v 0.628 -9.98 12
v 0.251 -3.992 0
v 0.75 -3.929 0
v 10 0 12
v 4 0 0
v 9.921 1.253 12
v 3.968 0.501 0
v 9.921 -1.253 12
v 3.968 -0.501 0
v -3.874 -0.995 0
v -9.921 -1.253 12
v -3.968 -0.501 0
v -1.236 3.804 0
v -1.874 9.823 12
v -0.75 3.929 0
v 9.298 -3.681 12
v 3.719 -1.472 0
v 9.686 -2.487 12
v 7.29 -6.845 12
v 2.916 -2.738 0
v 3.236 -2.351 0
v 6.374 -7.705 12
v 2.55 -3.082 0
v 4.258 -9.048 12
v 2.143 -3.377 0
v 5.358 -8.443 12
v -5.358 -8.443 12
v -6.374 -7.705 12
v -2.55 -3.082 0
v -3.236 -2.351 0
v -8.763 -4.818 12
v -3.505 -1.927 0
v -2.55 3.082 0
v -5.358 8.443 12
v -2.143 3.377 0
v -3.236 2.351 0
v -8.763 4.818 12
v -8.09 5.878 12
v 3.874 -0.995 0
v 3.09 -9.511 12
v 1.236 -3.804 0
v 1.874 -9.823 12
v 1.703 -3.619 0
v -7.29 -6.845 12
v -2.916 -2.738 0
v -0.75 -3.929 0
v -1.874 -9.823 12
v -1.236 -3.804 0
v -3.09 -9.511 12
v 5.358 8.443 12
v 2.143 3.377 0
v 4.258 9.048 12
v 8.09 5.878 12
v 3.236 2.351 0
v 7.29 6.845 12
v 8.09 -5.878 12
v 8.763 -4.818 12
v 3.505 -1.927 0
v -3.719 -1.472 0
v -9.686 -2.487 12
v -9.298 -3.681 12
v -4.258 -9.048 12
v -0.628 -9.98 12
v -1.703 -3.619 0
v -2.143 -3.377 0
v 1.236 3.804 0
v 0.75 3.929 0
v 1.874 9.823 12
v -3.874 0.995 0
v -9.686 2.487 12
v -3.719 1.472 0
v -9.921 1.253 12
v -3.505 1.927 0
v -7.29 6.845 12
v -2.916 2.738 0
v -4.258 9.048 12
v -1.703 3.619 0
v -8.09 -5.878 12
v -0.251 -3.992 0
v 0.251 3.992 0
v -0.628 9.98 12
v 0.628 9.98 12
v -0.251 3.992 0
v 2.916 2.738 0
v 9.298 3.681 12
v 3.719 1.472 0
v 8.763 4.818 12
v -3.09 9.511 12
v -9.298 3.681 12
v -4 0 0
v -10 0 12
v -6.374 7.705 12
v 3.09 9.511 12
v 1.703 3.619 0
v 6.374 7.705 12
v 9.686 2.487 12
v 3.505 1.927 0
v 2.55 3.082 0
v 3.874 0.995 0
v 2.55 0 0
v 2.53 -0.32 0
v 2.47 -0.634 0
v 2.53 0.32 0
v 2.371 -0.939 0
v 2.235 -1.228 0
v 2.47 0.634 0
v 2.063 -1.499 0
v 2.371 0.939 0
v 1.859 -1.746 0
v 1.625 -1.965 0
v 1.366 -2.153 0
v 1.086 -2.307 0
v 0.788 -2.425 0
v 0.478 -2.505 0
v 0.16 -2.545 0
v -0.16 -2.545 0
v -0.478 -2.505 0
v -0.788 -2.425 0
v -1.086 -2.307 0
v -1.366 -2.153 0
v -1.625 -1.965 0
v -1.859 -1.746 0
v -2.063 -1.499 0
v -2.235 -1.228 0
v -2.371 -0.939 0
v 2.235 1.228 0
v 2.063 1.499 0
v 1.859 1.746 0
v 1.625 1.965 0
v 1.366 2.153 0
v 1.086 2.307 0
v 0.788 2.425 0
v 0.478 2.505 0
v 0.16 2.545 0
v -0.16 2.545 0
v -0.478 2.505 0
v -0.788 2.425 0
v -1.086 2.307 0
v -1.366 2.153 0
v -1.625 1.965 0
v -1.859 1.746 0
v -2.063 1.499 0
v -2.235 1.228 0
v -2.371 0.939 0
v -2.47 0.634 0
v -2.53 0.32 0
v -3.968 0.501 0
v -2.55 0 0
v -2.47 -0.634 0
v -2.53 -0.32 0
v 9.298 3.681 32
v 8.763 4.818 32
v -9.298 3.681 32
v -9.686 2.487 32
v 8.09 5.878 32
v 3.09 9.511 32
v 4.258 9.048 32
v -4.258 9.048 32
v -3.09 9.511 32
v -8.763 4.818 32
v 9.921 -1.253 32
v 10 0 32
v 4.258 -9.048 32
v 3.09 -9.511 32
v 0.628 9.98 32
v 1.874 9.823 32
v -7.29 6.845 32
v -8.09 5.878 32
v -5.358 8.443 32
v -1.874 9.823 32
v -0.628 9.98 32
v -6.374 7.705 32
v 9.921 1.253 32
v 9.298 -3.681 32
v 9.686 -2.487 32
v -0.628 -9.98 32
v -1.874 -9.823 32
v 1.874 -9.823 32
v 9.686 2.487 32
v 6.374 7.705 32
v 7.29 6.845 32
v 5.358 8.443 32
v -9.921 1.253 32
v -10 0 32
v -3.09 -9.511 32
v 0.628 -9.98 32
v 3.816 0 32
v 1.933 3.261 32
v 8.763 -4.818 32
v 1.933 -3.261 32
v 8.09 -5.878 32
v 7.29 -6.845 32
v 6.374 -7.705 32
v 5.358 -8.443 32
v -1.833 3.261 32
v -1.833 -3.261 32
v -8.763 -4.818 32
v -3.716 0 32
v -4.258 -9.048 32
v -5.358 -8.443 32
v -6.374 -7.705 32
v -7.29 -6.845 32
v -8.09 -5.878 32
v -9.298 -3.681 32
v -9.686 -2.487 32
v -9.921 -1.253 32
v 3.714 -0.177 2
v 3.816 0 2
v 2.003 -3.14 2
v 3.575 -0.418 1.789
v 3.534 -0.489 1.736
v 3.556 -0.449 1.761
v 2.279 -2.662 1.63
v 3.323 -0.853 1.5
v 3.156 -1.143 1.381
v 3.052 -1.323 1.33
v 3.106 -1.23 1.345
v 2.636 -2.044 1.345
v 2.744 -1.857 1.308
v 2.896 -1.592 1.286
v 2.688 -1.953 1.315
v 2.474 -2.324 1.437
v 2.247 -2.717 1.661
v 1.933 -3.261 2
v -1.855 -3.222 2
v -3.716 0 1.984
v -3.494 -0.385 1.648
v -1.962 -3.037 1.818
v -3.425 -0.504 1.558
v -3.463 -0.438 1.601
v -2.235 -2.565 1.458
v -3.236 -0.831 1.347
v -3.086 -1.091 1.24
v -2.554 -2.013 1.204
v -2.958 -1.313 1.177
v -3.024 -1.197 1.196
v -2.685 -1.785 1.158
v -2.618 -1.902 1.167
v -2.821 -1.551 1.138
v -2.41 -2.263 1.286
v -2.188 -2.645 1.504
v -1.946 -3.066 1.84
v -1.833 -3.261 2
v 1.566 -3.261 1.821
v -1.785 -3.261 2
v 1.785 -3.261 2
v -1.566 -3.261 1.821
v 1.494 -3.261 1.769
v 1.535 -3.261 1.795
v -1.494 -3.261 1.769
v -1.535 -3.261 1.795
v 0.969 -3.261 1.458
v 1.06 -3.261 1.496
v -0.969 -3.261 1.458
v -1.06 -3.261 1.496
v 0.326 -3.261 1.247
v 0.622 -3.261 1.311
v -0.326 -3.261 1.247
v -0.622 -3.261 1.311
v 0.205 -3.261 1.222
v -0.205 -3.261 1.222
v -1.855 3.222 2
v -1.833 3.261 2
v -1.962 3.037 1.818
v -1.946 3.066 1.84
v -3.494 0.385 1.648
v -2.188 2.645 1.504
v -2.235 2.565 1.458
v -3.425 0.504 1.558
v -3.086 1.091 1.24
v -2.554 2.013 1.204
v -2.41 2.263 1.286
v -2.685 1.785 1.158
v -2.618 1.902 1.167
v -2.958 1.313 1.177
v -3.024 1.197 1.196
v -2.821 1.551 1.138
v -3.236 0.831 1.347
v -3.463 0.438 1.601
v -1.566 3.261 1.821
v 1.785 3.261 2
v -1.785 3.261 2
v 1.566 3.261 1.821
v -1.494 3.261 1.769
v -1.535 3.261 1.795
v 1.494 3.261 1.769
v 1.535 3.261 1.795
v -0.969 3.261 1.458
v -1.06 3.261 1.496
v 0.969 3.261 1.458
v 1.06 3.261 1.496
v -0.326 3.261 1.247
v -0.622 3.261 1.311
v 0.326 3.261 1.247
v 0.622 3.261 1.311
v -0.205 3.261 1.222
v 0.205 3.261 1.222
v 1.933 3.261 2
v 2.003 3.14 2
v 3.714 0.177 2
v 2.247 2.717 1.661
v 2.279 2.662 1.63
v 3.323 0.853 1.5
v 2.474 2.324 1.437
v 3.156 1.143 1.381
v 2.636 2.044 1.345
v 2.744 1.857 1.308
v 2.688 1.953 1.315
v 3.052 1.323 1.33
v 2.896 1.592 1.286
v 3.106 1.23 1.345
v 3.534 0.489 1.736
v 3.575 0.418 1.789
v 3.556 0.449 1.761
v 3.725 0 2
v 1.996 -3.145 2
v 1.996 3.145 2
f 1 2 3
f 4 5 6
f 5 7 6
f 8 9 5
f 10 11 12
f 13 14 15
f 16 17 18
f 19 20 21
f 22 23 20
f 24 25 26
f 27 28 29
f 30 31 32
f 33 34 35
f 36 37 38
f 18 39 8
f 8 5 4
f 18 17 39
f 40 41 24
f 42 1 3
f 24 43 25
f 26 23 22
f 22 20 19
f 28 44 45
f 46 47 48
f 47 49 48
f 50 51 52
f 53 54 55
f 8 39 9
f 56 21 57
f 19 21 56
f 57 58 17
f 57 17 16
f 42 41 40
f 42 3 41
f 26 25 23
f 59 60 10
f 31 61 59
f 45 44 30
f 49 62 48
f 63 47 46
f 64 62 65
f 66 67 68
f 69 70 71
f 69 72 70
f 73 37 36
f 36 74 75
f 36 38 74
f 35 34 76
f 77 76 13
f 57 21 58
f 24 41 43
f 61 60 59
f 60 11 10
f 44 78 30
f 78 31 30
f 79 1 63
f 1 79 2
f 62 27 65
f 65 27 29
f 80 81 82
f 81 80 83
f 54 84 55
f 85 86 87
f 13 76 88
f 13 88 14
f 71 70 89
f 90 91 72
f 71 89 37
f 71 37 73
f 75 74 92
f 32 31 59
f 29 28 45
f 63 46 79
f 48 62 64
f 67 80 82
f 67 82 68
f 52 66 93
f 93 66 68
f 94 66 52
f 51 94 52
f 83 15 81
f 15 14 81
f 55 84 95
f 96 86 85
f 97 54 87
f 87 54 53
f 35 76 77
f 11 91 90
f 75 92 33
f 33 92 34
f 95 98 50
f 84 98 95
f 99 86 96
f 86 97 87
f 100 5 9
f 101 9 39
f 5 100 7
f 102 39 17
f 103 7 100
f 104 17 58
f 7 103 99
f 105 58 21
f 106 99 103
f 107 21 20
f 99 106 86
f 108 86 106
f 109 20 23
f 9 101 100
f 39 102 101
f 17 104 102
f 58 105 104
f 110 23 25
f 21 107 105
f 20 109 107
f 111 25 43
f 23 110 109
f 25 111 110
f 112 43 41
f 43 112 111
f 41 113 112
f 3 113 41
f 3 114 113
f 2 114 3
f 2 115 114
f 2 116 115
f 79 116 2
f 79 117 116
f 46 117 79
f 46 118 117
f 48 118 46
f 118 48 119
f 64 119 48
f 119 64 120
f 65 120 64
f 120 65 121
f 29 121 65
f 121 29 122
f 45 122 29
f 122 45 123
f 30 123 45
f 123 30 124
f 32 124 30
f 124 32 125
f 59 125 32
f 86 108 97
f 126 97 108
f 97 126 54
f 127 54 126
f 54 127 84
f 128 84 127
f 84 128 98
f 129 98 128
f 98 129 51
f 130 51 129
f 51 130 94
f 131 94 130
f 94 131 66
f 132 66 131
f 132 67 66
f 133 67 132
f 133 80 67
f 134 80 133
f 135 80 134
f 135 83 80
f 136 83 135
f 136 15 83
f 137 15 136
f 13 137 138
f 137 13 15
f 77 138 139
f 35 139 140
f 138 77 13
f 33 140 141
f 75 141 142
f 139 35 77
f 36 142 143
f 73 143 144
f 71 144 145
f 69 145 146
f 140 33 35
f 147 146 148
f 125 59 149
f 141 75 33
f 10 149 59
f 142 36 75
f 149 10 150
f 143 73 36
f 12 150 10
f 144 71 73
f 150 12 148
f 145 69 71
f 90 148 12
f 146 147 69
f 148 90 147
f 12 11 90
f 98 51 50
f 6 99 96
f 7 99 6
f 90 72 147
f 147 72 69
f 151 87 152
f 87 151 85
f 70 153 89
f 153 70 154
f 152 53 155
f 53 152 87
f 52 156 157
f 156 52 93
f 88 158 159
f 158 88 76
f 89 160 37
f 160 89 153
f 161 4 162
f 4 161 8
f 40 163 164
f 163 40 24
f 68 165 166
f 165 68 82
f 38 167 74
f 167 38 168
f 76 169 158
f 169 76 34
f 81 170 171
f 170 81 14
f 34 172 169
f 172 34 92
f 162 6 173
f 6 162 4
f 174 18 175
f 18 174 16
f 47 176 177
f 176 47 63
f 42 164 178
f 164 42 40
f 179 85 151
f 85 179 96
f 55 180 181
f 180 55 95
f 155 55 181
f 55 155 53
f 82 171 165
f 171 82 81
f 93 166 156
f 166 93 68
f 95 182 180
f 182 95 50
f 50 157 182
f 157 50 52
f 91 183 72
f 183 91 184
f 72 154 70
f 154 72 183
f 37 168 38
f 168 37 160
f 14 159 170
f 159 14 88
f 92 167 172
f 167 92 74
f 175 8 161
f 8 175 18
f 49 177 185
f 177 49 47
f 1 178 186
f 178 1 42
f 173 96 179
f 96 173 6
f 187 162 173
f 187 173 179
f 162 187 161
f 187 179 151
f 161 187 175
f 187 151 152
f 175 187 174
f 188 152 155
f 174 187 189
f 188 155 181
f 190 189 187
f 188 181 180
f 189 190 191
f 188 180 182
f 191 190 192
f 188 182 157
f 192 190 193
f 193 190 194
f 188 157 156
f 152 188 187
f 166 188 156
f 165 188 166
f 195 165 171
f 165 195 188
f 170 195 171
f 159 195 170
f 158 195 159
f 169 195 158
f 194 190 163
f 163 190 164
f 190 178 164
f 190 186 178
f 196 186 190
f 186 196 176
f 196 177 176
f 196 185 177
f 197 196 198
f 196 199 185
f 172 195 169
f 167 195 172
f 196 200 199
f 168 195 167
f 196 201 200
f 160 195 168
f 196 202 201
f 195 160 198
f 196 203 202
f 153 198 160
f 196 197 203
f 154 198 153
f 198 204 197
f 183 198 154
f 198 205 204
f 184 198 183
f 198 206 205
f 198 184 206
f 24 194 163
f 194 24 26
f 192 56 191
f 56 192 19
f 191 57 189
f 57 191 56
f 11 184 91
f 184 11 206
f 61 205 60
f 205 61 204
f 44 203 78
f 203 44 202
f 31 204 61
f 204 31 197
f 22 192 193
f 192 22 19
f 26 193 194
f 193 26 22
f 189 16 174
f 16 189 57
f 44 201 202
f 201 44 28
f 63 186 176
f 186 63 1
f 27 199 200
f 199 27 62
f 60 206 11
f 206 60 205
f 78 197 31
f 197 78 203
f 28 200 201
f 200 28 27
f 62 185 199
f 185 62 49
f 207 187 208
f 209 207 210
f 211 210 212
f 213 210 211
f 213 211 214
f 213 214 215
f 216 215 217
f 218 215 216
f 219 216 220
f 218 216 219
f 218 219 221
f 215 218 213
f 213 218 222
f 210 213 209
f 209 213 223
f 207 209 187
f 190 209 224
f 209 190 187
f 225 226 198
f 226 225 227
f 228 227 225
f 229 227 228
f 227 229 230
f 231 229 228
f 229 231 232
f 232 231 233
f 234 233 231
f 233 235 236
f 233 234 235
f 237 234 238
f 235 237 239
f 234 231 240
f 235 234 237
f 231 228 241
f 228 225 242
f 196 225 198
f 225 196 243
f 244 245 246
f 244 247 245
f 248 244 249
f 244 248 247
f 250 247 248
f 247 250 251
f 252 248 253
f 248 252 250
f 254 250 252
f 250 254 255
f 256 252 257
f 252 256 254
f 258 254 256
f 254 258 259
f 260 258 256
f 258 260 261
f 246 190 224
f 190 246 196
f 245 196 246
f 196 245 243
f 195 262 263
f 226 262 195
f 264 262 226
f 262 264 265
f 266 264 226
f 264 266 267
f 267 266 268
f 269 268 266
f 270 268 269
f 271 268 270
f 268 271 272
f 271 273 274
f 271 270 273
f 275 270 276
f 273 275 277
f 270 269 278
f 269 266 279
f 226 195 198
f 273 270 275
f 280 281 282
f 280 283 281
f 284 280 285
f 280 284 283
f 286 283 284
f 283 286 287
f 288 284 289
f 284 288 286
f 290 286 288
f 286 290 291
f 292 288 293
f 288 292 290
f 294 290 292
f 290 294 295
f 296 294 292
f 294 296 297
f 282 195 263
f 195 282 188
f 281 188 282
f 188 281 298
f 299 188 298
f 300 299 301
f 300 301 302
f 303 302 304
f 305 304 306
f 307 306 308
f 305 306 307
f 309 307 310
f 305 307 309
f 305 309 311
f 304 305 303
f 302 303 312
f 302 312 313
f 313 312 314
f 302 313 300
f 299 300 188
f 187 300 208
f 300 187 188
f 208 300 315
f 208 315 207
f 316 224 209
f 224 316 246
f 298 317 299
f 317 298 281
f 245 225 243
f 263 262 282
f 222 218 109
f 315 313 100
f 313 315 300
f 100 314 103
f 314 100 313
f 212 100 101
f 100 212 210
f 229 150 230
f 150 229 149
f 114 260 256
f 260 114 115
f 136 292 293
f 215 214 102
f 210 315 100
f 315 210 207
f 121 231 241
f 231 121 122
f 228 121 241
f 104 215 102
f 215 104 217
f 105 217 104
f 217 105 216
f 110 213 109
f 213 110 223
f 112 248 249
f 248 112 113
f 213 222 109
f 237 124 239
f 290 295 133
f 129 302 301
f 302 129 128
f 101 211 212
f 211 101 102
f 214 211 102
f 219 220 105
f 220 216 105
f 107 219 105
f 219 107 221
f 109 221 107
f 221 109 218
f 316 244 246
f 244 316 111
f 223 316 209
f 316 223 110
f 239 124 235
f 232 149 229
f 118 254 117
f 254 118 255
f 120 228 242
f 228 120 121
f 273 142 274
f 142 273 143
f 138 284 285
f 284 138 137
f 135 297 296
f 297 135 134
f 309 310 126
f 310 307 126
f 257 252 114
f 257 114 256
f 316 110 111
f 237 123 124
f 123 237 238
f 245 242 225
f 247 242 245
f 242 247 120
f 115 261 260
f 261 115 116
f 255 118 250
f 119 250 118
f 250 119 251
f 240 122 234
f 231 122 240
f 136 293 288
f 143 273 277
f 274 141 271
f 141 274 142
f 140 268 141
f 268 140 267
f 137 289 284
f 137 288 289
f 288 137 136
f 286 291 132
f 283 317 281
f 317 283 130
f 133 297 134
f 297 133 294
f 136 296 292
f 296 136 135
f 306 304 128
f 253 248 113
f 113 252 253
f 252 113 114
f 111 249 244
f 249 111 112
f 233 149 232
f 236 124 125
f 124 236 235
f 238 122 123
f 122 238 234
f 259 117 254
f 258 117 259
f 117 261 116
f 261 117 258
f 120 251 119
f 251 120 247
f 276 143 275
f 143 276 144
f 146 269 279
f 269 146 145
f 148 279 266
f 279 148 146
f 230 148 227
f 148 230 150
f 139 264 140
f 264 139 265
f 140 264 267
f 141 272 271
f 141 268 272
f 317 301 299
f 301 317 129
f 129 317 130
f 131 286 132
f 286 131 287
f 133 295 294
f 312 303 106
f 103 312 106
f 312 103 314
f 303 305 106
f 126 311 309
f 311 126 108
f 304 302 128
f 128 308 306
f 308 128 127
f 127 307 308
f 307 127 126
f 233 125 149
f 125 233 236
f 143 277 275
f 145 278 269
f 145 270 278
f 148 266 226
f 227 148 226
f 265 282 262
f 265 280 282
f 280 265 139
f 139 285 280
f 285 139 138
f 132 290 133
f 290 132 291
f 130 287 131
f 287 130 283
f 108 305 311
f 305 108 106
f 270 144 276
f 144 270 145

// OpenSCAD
$fn = 50;


difference() {
	union() {
		cylinder(h = 12, r1 = 4, r2 = 10);
		translate(v = [0, 0, 12.0000000000]) {
			cylinder(h = 20, r = 10);
		}
	}
	union() {
		translate(v = [0, 0, 0]) {
			rotate(a = [0, 0, 0]) {
				difference() {
					union() {
						translate(v = [0.0500000000, 0, 0]) {
							#linear_extrude(height = 228.1000000000) {
								polygon(points = [[3.7658550000, 0.0000000000], [1.8829275000, 3.2613260970], [-1.8829275000, 3.2613260970], [-3.7658550000, 0.0000000000], [-1.8829275000, -3.2613260970], [1.8829275000, -3.2613260970]]);
							}
						}
						#translate(v = [0, 0, -71.9000000000]) {
							cylinder(h = 100, r = 2.5500000000);
						}
					}
					union() {
						difference() {
							#cylinder(h = 2, r1 = 10.5500000000, r2 = 11.7250000000);
							#cylinder(h = 2, r1 = 2.5500000000, r2 = 3.7250000000);
						}
					}
				}
			}
		}
	}
}
